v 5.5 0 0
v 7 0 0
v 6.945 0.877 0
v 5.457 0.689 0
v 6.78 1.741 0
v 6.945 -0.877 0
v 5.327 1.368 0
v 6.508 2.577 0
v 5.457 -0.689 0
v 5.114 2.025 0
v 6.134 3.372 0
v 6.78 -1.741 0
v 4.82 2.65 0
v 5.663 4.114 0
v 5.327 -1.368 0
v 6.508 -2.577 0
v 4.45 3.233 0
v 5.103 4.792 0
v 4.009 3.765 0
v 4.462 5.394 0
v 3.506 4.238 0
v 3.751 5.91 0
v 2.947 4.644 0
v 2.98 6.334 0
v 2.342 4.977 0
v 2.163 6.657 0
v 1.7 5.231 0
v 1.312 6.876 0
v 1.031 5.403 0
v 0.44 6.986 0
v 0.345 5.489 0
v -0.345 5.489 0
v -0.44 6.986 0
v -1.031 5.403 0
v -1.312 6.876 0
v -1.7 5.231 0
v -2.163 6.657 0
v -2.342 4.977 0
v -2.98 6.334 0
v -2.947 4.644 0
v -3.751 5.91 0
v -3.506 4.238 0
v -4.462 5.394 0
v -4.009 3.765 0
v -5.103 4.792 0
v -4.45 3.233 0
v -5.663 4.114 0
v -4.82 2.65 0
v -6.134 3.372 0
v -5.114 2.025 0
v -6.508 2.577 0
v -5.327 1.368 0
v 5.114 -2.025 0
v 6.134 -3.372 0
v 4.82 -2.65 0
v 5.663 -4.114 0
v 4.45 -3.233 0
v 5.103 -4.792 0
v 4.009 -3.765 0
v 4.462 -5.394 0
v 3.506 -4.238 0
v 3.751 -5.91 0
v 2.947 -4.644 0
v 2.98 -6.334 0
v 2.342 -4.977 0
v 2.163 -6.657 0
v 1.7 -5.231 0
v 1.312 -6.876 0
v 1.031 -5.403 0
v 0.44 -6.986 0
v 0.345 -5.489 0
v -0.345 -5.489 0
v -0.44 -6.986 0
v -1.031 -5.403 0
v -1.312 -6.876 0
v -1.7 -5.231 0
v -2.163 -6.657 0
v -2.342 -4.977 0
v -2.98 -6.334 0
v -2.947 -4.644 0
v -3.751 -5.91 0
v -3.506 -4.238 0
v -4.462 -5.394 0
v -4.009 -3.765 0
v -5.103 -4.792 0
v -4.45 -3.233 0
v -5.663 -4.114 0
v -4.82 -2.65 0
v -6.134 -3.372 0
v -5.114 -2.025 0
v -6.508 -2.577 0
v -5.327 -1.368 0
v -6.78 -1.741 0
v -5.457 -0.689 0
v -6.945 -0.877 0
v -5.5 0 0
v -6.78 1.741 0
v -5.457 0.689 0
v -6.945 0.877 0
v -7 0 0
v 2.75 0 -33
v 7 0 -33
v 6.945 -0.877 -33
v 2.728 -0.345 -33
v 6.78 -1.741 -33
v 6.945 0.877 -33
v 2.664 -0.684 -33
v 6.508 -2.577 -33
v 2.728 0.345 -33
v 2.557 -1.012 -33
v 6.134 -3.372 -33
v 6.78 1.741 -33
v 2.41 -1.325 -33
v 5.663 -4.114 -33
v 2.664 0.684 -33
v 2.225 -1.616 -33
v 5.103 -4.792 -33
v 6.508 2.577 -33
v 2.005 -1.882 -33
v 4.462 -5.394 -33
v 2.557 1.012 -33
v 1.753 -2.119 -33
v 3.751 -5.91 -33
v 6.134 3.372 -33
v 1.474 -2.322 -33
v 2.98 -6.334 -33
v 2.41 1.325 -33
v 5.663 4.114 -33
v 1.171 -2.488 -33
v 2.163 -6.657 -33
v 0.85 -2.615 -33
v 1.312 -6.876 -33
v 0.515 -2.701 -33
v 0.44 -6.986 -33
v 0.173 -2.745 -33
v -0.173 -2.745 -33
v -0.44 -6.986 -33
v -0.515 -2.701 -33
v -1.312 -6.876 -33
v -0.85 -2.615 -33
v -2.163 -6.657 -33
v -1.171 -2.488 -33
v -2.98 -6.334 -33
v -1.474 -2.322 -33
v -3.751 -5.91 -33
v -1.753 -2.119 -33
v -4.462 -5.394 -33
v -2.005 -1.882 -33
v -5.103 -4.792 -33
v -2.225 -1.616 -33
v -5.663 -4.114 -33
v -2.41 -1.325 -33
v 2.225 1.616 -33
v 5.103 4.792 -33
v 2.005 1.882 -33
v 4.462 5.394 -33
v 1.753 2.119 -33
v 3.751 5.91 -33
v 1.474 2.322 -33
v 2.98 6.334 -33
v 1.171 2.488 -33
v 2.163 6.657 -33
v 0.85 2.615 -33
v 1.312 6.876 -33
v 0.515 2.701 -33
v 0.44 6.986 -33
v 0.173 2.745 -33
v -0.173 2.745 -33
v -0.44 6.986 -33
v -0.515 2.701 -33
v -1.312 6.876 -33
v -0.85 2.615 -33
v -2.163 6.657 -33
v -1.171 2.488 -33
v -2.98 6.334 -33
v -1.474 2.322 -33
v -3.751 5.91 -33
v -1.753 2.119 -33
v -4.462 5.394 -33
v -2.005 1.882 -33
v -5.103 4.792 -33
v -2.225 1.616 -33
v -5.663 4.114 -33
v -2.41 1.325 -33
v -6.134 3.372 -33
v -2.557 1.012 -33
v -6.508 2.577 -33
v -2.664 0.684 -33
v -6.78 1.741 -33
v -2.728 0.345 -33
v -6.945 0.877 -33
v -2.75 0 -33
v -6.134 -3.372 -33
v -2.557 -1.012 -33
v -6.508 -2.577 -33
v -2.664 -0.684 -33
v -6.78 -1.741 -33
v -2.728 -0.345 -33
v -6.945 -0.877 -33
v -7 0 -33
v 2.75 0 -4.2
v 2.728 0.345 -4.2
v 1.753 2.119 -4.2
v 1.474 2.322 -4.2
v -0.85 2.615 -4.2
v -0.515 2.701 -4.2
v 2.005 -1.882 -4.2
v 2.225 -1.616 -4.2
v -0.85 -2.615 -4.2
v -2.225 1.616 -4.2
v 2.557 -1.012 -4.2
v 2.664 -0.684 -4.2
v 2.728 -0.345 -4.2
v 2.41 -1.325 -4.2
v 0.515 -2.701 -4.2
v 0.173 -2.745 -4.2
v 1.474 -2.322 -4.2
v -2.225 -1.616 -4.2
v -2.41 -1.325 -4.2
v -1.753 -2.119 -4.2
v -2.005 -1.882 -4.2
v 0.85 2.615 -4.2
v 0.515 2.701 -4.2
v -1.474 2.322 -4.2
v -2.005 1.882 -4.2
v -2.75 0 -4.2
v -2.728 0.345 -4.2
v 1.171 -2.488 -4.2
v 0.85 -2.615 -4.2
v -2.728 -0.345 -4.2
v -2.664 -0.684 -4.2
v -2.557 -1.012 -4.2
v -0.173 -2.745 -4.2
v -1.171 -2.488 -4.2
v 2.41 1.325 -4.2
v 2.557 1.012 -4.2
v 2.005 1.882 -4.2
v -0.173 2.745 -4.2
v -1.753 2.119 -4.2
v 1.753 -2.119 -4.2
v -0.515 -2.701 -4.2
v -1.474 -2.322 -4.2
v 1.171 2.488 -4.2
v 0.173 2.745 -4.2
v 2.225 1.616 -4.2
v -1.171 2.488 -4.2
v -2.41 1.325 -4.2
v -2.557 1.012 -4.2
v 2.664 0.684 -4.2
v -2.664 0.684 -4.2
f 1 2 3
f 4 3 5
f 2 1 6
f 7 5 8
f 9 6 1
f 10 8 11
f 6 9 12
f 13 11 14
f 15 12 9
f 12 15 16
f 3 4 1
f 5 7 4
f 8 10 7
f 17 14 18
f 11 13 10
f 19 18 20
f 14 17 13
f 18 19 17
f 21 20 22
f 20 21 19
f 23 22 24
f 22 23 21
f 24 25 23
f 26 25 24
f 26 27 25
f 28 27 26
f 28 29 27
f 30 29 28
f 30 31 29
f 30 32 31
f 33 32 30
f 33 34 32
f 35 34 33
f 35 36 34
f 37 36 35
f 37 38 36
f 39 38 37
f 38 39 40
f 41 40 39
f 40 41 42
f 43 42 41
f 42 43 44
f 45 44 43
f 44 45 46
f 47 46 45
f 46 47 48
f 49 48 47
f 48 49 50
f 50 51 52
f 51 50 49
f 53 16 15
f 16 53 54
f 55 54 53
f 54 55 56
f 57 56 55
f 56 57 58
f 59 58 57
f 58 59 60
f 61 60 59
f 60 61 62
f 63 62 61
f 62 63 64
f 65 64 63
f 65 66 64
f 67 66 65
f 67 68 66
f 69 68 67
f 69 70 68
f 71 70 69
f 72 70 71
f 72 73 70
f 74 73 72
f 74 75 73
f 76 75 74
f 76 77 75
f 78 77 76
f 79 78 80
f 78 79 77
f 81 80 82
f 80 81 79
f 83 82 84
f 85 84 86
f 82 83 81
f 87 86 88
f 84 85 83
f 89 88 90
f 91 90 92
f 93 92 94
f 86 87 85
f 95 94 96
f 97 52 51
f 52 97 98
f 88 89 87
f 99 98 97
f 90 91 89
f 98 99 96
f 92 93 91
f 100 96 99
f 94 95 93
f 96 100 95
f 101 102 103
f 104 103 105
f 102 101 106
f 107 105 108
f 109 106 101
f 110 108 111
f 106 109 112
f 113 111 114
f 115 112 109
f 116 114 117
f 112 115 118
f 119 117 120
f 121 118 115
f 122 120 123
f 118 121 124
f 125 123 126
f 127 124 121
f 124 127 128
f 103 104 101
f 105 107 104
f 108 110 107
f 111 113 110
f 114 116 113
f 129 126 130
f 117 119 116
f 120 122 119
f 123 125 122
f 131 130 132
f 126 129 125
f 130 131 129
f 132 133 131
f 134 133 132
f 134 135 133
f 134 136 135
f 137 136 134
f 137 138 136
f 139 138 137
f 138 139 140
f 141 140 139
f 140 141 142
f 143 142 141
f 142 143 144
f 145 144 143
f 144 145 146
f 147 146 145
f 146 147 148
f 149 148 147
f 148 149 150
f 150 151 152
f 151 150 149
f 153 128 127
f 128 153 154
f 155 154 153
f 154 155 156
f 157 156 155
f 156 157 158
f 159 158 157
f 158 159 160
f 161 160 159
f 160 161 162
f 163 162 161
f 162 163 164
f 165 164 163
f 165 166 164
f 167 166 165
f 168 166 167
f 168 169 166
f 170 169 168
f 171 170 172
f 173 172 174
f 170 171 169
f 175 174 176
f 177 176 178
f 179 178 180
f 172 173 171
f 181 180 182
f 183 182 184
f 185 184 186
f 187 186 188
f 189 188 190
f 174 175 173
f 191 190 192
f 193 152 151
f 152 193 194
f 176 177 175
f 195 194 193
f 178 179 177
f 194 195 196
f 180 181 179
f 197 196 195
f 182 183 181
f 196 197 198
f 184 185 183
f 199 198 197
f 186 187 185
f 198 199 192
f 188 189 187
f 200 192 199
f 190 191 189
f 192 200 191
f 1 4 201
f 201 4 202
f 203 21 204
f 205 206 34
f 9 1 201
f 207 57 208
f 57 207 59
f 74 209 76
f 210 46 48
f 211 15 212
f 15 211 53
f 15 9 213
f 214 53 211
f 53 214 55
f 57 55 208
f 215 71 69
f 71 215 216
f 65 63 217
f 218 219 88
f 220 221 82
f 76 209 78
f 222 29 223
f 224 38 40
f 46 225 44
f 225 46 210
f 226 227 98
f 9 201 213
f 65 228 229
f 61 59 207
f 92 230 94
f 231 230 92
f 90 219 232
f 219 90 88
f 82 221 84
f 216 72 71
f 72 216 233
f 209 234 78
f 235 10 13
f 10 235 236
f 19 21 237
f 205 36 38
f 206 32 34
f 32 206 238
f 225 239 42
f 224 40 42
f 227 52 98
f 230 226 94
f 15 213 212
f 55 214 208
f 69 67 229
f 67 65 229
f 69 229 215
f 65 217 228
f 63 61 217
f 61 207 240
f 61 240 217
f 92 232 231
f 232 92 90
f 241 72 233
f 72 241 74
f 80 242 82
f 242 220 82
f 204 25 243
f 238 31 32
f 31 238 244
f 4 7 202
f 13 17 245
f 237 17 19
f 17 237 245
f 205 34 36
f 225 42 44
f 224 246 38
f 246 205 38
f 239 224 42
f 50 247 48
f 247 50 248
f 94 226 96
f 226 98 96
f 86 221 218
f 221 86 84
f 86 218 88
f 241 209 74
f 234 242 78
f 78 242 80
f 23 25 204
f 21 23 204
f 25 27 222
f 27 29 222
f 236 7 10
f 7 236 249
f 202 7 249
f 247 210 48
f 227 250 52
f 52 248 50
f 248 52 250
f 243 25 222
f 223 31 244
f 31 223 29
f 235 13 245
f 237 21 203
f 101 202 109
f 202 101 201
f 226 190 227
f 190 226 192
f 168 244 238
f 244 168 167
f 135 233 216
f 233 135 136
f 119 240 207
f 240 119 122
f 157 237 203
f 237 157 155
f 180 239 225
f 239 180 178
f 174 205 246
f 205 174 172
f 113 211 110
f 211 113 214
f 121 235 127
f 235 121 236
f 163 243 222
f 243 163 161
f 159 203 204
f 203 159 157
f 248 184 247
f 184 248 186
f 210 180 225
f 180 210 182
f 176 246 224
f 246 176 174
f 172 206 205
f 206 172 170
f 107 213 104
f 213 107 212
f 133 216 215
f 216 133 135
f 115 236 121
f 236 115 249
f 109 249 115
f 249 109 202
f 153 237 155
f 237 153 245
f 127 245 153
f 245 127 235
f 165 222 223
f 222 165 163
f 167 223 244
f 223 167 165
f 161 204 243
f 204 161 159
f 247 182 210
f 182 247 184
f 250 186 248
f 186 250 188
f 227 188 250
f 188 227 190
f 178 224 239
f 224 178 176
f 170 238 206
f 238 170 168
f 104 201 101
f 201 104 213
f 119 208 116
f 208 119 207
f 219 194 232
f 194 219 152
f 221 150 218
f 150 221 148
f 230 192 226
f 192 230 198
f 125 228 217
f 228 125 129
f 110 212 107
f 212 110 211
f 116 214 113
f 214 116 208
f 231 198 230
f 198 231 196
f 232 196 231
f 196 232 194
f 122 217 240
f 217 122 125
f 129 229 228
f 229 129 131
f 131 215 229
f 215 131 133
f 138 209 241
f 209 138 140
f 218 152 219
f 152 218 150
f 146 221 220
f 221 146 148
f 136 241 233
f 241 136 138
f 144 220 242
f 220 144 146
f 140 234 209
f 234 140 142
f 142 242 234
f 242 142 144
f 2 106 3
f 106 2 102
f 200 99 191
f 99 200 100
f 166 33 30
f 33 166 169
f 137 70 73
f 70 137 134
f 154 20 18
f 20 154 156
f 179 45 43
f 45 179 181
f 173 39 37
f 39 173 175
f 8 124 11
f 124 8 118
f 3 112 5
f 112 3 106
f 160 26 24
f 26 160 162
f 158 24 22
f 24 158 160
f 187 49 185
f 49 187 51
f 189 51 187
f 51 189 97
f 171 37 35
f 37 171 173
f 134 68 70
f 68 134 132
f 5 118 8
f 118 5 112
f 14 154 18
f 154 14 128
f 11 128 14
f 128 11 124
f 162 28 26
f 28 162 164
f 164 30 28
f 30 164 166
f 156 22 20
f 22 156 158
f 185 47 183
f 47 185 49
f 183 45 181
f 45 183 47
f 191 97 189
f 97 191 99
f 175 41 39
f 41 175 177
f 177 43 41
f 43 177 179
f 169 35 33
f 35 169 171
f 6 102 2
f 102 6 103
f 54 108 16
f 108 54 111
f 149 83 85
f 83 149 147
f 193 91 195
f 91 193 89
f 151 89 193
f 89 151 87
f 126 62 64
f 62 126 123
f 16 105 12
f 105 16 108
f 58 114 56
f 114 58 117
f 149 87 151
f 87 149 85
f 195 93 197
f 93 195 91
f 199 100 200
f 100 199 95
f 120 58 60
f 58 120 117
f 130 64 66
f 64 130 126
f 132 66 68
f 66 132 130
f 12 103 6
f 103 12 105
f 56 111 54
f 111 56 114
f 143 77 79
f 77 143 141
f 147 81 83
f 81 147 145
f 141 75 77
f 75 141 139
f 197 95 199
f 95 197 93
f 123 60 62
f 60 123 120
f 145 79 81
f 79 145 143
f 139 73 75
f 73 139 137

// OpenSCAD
$fn = 50;


difference() {
	union() {
		translate(v = [0, 0, -33.0000000000]) {
			cylinder(h = 33, r = 7.0000000000);
		}
		cylinder(h = 0, r = 17.0000000000);
	}
	union() {
		translate(v = [0, 0, 0]) {
			rotate(a = [0, 0, 0]) {
				difference() {
					union() {
						#translate(v = [0, 0, -33.0000000000]) {
							cylinder(h = 33, r = 2.2500000000);
						}
						#translate(v = [0, 0, -4.2000000000]) {
							cylinder(h = 4.2000000000, r = 7.0000000000, r1 = 2.7500000000, r2 = 5.5000000000);
						}
						#translate(v = [0, 0, -33.0000000000]) {
							cylinder(h = 33, r = 2.7500000000);
						}
						#translate(v = [0, 0, -33.0000000000]) {
							cylinder(h = 33, r = 2.2500000000);
						}
					}
					union();
				}
			}
		}
	}
}
